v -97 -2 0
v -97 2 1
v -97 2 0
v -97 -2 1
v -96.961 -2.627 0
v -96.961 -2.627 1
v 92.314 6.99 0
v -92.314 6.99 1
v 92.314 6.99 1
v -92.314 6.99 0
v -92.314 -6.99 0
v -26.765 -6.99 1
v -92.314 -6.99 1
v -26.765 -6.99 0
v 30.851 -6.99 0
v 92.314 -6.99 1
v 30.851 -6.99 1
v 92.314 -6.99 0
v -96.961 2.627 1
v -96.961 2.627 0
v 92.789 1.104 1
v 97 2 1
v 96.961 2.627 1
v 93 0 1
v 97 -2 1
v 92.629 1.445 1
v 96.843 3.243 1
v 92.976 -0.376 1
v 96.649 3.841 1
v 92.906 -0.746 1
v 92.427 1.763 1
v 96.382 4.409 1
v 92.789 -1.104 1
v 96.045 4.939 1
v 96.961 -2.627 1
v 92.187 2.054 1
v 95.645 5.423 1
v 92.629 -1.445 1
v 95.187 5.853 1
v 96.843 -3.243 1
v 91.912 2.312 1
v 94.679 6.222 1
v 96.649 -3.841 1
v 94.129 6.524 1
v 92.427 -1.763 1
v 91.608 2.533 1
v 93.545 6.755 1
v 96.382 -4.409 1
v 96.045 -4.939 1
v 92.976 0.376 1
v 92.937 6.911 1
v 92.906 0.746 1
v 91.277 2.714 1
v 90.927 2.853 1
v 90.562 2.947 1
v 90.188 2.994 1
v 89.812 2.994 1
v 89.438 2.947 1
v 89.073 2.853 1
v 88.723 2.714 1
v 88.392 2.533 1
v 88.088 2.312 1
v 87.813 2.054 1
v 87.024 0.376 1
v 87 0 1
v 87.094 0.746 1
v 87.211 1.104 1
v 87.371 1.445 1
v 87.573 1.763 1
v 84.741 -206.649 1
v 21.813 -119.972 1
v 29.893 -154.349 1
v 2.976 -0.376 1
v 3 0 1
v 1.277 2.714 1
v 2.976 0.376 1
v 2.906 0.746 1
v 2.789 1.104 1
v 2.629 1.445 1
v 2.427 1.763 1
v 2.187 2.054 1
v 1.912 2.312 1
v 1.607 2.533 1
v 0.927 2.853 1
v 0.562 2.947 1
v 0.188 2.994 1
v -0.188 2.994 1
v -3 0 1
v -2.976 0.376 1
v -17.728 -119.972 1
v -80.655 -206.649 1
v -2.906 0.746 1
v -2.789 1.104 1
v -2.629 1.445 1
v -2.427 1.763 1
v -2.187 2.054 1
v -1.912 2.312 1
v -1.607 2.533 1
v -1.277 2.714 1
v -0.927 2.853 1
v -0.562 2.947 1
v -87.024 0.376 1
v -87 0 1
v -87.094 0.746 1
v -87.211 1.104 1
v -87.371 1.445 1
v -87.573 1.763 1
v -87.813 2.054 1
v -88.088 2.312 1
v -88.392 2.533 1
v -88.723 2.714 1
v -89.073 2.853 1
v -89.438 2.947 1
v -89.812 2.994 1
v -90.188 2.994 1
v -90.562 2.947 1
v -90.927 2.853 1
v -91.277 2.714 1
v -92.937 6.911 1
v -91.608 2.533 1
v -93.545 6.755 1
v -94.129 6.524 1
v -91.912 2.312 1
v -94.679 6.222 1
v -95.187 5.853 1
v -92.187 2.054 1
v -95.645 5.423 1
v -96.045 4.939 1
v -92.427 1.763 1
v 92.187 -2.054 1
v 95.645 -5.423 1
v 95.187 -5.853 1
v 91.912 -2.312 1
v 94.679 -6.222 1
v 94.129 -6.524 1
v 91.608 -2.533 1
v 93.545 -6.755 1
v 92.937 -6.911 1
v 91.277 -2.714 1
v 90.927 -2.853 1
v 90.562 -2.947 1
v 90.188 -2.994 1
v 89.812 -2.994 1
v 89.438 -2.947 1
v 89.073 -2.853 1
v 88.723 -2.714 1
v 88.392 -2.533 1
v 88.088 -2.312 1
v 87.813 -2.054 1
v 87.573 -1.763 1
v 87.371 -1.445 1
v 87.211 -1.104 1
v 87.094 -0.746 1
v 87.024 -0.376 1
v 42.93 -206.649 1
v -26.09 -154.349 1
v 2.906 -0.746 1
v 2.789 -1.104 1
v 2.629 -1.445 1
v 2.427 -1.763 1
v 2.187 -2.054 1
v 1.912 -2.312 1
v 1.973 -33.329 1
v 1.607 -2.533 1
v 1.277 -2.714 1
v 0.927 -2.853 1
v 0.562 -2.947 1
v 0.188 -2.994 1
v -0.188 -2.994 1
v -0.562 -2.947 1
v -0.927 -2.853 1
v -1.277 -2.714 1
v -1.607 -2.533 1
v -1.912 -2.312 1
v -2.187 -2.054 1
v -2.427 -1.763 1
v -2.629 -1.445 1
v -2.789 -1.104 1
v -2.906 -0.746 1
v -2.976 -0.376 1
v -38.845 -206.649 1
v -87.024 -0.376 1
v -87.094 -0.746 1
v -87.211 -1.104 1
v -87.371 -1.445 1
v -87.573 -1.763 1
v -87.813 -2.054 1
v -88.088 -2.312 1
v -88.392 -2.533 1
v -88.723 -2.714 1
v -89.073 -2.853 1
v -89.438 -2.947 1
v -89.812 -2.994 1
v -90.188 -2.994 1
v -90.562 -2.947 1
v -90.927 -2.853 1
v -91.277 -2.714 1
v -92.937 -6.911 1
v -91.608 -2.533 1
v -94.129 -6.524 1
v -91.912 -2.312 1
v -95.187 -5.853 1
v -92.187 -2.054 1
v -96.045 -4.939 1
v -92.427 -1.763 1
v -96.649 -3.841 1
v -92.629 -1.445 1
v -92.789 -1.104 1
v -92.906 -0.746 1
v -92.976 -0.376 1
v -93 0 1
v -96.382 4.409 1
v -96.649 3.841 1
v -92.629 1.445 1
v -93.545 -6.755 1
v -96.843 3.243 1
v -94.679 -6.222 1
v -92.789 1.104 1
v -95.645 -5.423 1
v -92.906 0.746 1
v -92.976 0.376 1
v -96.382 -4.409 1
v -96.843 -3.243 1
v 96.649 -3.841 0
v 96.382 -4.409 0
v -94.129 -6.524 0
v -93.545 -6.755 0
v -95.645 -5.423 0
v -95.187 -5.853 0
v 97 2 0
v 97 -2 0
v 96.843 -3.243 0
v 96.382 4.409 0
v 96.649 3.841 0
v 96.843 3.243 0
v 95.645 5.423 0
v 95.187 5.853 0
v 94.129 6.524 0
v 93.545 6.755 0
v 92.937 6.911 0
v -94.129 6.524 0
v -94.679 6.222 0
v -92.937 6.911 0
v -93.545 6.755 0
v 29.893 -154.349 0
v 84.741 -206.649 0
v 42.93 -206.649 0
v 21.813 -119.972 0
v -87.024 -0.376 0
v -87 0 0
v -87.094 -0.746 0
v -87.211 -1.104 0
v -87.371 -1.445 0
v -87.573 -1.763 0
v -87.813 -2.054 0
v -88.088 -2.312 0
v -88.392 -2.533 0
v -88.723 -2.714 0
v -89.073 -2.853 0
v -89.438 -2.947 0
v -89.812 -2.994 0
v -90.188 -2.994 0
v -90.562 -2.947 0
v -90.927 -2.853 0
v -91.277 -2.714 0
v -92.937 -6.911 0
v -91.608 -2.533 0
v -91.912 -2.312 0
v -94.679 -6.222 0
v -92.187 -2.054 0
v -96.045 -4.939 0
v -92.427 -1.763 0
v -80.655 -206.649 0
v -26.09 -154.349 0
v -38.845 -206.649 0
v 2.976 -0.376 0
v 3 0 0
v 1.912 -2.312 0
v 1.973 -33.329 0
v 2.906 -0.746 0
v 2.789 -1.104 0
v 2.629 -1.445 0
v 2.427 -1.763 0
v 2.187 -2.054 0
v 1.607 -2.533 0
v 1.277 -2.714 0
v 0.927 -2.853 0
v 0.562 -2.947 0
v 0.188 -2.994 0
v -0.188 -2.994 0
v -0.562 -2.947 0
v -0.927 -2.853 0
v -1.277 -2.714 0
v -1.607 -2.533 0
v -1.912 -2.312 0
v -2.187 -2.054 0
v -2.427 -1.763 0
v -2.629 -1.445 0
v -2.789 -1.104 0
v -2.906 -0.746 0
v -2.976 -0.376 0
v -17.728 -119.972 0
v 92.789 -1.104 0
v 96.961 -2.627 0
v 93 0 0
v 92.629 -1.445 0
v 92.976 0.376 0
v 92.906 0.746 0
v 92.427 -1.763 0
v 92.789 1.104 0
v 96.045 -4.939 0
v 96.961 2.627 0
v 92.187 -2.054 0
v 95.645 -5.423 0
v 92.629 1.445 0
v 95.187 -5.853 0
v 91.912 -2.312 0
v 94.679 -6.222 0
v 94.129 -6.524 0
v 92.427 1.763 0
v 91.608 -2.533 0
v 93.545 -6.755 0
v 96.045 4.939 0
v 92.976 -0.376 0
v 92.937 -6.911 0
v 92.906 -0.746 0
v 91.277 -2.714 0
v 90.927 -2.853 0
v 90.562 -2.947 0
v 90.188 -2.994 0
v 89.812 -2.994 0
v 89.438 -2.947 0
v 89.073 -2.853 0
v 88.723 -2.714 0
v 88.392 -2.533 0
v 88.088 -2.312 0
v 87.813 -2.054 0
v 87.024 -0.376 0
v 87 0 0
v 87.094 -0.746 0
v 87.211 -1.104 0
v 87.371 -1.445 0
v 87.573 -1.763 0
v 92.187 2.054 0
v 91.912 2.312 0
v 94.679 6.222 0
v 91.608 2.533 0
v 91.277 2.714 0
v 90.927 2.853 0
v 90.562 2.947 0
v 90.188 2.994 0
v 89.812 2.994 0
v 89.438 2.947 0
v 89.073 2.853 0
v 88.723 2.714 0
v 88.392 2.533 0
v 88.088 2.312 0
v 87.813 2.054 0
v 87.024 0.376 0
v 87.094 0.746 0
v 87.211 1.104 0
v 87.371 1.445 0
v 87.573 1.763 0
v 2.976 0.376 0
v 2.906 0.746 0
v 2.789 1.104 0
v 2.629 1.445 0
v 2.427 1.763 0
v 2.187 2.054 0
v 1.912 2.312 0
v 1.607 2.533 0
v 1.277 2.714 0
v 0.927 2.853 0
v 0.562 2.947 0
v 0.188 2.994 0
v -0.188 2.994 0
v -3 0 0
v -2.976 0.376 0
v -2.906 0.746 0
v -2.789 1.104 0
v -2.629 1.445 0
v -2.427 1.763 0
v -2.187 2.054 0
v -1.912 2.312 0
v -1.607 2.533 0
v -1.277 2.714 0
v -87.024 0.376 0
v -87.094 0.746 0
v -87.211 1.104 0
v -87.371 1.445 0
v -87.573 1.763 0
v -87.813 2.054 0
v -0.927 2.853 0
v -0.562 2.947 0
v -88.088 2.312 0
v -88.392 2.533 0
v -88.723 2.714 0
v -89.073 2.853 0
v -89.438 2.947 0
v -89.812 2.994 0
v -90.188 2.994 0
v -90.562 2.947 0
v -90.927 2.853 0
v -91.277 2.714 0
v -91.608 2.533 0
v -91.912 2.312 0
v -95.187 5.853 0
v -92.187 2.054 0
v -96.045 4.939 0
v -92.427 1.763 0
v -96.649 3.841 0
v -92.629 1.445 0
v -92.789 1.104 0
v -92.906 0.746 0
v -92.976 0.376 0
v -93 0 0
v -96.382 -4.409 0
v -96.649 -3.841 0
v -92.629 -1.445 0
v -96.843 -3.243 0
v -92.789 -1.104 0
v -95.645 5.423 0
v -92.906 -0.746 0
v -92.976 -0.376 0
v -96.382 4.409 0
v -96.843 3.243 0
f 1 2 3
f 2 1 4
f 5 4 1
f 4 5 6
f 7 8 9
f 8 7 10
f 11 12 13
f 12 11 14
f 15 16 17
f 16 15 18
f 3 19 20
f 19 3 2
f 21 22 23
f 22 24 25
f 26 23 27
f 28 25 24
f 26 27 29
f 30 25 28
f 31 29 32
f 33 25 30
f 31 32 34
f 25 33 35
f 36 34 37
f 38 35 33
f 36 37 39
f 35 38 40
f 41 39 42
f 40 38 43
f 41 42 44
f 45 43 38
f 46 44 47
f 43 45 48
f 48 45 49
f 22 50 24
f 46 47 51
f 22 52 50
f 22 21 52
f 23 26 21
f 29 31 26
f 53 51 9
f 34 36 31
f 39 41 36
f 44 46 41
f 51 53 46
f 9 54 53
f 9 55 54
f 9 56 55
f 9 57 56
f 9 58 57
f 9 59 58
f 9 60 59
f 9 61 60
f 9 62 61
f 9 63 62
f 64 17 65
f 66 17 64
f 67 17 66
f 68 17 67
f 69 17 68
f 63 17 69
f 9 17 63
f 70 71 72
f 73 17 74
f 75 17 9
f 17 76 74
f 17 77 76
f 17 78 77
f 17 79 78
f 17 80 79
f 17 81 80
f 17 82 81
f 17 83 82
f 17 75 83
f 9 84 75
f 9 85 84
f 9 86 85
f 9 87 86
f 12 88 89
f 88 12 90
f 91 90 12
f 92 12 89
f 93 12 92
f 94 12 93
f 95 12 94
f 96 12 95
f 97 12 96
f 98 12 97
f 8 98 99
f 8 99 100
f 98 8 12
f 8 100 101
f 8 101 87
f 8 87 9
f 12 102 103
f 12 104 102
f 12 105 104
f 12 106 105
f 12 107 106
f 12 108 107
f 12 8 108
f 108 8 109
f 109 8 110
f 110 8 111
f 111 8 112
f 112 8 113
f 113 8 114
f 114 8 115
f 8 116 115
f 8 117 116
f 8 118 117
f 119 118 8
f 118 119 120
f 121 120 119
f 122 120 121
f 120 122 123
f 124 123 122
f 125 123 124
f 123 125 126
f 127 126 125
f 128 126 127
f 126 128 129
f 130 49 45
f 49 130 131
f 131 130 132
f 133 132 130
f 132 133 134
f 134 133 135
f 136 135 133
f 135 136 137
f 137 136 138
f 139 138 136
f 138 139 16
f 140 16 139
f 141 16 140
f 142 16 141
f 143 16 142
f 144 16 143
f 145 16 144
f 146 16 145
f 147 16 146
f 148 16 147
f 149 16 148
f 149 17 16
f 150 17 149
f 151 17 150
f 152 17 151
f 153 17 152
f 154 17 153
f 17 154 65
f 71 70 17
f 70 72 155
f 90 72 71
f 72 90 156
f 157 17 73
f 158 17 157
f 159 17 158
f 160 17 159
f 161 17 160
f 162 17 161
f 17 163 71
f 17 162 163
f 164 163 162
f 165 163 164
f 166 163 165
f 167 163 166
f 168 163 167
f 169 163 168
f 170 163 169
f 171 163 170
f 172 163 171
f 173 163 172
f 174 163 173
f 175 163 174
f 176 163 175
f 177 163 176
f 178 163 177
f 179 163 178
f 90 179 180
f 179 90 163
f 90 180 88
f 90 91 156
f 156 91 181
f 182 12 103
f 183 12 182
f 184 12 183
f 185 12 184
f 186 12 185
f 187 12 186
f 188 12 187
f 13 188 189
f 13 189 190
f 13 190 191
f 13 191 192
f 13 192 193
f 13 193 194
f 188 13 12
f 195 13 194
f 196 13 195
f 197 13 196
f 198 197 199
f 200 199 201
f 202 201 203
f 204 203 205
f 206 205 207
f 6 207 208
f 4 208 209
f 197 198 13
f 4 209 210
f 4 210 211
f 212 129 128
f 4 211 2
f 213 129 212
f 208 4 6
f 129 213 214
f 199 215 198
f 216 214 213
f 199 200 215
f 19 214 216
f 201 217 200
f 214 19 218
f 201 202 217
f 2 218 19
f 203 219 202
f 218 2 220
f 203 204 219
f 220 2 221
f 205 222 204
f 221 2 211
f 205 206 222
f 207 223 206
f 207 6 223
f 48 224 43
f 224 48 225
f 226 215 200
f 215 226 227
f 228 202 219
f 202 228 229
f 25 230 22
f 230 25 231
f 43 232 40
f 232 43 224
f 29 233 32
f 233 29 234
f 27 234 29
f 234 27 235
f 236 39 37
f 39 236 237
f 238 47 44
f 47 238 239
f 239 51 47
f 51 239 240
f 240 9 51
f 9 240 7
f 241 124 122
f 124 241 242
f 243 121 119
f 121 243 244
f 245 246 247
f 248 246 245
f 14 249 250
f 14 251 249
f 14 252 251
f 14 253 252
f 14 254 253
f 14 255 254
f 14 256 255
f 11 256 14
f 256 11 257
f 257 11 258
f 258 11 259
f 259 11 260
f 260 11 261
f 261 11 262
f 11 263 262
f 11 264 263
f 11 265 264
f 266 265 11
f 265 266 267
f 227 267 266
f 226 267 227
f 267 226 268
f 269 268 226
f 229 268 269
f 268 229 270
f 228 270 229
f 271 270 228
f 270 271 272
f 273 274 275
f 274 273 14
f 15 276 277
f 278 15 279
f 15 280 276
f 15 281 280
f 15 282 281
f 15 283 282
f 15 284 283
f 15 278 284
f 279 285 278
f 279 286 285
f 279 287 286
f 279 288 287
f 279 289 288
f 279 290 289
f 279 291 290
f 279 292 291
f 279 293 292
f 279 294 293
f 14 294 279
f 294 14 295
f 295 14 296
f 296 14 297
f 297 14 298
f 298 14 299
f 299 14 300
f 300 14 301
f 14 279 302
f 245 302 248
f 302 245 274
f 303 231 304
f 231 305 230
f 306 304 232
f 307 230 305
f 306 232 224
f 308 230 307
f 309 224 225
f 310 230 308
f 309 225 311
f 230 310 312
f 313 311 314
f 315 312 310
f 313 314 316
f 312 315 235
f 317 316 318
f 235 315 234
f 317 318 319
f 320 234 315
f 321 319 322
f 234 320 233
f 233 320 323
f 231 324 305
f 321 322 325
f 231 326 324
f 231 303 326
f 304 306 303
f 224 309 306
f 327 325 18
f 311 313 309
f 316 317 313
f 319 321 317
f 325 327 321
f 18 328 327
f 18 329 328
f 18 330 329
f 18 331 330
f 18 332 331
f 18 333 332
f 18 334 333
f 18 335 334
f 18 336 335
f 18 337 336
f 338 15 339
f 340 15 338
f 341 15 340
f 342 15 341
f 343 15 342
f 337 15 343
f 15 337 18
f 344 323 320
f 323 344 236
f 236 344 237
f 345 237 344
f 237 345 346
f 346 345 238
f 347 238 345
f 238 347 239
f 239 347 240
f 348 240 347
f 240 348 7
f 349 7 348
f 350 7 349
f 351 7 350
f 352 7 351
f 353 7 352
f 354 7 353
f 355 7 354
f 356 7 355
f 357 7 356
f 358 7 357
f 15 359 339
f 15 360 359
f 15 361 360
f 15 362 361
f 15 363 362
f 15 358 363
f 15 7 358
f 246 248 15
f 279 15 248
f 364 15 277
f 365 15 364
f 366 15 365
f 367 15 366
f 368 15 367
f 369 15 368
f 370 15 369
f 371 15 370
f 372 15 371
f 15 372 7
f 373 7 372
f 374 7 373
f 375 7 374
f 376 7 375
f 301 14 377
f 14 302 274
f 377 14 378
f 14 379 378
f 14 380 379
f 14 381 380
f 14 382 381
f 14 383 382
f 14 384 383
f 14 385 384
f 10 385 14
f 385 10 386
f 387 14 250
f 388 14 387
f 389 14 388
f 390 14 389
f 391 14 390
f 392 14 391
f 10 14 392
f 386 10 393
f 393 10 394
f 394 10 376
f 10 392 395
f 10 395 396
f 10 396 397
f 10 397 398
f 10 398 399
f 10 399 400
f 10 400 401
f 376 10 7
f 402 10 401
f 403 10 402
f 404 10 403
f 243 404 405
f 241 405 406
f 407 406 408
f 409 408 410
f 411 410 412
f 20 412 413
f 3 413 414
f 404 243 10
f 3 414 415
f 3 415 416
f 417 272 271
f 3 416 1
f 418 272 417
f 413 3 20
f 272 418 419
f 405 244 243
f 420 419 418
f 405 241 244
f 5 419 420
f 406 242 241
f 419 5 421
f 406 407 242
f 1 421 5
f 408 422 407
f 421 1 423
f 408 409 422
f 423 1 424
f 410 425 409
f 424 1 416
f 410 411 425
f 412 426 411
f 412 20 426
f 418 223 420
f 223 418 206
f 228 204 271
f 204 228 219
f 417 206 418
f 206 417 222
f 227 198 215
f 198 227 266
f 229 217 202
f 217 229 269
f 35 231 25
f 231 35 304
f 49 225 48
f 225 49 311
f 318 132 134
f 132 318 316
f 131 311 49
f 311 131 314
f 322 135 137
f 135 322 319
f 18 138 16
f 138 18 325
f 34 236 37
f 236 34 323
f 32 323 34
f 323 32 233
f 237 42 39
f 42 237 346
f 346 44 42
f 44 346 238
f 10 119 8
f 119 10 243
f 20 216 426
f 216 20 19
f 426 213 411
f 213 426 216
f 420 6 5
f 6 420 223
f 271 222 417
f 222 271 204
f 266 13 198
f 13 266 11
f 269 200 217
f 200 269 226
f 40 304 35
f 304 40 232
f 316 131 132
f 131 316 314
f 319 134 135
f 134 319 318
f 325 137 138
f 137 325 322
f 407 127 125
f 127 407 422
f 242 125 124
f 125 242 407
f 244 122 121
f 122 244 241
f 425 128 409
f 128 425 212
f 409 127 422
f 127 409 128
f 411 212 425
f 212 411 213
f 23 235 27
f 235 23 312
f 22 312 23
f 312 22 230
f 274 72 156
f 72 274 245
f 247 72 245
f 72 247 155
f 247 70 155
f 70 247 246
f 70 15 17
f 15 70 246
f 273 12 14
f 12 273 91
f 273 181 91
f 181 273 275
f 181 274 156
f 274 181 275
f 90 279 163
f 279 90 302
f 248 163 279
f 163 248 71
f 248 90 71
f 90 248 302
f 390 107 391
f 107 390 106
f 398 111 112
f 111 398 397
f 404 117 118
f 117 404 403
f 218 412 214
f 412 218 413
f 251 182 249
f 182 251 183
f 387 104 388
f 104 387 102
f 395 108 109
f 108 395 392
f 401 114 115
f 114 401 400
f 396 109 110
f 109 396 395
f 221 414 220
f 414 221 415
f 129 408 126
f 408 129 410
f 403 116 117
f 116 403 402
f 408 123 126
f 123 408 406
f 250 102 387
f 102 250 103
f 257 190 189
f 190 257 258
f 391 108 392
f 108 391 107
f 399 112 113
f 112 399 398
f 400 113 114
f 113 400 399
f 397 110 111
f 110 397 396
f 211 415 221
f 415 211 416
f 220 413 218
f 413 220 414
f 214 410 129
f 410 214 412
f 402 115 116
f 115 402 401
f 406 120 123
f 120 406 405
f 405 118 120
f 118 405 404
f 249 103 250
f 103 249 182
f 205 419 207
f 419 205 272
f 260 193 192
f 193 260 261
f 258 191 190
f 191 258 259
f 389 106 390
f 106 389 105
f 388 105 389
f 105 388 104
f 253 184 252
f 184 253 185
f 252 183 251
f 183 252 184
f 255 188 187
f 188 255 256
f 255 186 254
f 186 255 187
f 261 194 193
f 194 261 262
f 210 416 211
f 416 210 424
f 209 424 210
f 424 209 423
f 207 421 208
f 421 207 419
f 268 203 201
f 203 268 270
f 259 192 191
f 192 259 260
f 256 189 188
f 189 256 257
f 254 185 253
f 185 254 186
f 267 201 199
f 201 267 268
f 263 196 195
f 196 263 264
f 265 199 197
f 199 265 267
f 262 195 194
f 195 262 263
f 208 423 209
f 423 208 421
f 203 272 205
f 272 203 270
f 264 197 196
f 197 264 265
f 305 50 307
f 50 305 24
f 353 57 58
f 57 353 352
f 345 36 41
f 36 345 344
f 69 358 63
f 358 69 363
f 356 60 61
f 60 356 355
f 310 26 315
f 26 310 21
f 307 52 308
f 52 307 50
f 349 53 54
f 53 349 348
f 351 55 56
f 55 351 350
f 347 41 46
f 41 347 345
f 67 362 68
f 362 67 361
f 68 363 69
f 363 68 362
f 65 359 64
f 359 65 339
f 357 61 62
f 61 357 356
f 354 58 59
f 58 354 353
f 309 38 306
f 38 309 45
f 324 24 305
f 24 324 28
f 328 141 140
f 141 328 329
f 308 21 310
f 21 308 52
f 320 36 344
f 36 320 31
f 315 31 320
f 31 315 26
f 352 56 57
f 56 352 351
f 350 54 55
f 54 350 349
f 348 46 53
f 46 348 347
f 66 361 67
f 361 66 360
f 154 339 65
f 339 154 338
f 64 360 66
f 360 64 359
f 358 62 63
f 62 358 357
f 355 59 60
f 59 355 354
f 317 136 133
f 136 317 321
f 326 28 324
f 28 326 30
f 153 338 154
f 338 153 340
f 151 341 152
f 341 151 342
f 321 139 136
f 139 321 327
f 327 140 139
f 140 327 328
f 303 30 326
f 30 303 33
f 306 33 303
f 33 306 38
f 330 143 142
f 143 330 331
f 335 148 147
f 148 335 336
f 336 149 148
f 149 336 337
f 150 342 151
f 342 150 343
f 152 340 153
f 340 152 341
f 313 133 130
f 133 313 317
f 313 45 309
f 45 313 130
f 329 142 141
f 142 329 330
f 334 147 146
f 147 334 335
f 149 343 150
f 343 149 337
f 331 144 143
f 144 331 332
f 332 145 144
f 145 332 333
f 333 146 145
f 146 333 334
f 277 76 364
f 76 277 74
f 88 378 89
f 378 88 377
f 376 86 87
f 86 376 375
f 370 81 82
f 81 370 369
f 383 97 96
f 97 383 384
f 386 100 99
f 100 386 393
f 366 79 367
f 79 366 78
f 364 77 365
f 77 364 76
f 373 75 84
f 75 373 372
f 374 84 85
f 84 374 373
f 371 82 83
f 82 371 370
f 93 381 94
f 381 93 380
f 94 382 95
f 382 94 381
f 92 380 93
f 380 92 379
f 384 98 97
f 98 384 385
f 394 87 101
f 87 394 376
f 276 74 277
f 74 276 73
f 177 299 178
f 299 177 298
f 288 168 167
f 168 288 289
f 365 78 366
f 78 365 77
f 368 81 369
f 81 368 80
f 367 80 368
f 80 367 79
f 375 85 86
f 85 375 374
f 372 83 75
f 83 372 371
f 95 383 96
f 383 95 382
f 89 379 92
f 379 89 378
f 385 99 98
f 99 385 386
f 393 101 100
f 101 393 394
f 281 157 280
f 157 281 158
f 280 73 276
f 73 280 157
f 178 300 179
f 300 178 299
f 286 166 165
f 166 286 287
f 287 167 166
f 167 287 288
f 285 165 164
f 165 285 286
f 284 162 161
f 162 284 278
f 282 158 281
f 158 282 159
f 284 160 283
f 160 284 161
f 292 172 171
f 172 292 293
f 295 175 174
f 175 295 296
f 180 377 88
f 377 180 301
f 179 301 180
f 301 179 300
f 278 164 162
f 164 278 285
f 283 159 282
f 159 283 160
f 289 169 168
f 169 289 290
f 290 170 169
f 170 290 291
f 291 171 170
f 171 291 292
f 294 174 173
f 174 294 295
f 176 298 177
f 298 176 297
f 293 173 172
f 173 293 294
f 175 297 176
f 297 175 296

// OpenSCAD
$fn = 50;


difference() {
	union() {
		translate(v = [0, 0, 0]) {
			rotate(a = [0, 0, 0]) {
				hull() {
					translate(v = [-92.0000000000, 2.0000000000, 0]) {
						rotate(a = [0, 0, 0]) {
							translate(v = [0, 0, 0]) {
								rotate(a = [0, 0, 0]) {
									cylinder(h = 1, r = 5);
								}
							}
						}
					}
					translate(v = [92.0000000000, 2.0000000000, 0]) {
						rotate(a = [0, 0, 0]) {
							translate(v = [0, 0, 0]) {
								rotate(a = [0, 0, 0]) {
									cylinder(h = 1, r = 5);
								}
							}
						}
					}
					translate(v = [-92.0000000000, -2.0000000000, 0]) {
						rotate(a = [0, 0, 0]) {
							translate(v = [0, 0, 0]) {
								rotate(a = [0, 0, 0]) {
									cylinder(h = 1, r = 5);
								}
							}
						}
					}
					translate(v = [92.0000000000, -2.0000000000, 0]) {
						rotate(a = [0, 0, 0]) {
							translate(v = [0, 0, 0]) {
								rotate(a = [0, 0, 0]) {
									cylinder(h = 1, r = 5);
								}
							}
						}
					}
				}
			}
		}
		translate(v = [0, 0, 0]) {
			rotate(a = [0, 0, 0]) {
				linear_extrude(height = 1) {
					text(font = "DejaVu Sans Mono:style=Bold", halign = "center", size = 209.0000000000, text = "A", valign = "top");
				}
			}
		}
	}
	union() {
		translate(v = [-90.0000000000, 0.0000000000, -125.0000000000]) {
			rotate(a = [0, 0, 0]) {
				cylinder(h = 250, r = 3.0000000000);
			}
		}
		translate(v = [90.0000000000, 0.0000000000, -125.0000000000]) {
			rotate(a = [0, 0, 0]) {
				cylinder(h = 250, r = 3.0000000000);
			}
		}
		translate(v = [90.0000000000, 0.0000000000, -125.0000000000]) {
			rotate(a = [0, 0, 0]) {
				cylinder(h = 250, r = 3.0000000000);
			}
		}
		translate(v = [0, 0, -125.0000000000]) {
			rotate(a = [0, 0, 0]) {
				cylinder(h = 250, r = 3.0000000000);
			}
		}
	}
}
